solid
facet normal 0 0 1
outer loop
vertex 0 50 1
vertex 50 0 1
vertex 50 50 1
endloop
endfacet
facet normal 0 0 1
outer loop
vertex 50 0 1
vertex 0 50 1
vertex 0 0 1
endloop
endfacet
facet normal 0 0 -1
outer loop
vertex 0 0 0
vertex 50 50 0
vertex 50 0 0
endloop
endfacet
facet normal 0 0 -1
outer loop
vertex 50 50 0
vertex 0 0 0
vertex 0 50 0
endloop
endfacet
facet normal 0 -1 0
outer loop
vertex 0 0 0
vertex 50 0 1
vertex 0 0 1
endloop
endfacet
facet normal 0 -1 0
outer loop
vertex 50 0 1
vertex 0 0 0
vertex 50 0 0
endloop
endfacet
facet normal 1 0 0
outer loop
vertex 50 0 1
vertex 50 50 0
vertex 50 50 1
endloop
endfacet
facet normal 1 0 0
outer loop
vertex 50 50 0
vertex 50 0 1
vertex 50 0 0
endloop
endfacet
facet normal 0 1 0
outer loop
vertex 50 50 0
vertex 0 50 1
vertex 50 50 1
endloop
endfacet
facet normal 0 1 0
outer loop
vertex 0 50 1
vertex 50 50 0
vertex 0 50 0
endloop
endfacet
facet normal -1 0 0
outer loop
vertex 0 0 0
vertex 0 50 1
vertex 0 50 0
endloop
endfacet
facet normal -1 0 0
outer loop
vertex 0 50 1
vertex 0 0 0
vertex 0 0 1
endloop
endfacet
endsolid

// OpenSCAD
size = [50, 50, 1];
line = 0.8;
frame = 1.2;
hole = 1.6;

    cube(size);
/*
difference() {
    step = line + hole;
    for(
        x = [frame: step: size.x - frame], 
        y = [frame: step: size.y - frame]
    ) {
        translate([x,y,0]) cube([hole, hole, size.z]);
    }
}*/
